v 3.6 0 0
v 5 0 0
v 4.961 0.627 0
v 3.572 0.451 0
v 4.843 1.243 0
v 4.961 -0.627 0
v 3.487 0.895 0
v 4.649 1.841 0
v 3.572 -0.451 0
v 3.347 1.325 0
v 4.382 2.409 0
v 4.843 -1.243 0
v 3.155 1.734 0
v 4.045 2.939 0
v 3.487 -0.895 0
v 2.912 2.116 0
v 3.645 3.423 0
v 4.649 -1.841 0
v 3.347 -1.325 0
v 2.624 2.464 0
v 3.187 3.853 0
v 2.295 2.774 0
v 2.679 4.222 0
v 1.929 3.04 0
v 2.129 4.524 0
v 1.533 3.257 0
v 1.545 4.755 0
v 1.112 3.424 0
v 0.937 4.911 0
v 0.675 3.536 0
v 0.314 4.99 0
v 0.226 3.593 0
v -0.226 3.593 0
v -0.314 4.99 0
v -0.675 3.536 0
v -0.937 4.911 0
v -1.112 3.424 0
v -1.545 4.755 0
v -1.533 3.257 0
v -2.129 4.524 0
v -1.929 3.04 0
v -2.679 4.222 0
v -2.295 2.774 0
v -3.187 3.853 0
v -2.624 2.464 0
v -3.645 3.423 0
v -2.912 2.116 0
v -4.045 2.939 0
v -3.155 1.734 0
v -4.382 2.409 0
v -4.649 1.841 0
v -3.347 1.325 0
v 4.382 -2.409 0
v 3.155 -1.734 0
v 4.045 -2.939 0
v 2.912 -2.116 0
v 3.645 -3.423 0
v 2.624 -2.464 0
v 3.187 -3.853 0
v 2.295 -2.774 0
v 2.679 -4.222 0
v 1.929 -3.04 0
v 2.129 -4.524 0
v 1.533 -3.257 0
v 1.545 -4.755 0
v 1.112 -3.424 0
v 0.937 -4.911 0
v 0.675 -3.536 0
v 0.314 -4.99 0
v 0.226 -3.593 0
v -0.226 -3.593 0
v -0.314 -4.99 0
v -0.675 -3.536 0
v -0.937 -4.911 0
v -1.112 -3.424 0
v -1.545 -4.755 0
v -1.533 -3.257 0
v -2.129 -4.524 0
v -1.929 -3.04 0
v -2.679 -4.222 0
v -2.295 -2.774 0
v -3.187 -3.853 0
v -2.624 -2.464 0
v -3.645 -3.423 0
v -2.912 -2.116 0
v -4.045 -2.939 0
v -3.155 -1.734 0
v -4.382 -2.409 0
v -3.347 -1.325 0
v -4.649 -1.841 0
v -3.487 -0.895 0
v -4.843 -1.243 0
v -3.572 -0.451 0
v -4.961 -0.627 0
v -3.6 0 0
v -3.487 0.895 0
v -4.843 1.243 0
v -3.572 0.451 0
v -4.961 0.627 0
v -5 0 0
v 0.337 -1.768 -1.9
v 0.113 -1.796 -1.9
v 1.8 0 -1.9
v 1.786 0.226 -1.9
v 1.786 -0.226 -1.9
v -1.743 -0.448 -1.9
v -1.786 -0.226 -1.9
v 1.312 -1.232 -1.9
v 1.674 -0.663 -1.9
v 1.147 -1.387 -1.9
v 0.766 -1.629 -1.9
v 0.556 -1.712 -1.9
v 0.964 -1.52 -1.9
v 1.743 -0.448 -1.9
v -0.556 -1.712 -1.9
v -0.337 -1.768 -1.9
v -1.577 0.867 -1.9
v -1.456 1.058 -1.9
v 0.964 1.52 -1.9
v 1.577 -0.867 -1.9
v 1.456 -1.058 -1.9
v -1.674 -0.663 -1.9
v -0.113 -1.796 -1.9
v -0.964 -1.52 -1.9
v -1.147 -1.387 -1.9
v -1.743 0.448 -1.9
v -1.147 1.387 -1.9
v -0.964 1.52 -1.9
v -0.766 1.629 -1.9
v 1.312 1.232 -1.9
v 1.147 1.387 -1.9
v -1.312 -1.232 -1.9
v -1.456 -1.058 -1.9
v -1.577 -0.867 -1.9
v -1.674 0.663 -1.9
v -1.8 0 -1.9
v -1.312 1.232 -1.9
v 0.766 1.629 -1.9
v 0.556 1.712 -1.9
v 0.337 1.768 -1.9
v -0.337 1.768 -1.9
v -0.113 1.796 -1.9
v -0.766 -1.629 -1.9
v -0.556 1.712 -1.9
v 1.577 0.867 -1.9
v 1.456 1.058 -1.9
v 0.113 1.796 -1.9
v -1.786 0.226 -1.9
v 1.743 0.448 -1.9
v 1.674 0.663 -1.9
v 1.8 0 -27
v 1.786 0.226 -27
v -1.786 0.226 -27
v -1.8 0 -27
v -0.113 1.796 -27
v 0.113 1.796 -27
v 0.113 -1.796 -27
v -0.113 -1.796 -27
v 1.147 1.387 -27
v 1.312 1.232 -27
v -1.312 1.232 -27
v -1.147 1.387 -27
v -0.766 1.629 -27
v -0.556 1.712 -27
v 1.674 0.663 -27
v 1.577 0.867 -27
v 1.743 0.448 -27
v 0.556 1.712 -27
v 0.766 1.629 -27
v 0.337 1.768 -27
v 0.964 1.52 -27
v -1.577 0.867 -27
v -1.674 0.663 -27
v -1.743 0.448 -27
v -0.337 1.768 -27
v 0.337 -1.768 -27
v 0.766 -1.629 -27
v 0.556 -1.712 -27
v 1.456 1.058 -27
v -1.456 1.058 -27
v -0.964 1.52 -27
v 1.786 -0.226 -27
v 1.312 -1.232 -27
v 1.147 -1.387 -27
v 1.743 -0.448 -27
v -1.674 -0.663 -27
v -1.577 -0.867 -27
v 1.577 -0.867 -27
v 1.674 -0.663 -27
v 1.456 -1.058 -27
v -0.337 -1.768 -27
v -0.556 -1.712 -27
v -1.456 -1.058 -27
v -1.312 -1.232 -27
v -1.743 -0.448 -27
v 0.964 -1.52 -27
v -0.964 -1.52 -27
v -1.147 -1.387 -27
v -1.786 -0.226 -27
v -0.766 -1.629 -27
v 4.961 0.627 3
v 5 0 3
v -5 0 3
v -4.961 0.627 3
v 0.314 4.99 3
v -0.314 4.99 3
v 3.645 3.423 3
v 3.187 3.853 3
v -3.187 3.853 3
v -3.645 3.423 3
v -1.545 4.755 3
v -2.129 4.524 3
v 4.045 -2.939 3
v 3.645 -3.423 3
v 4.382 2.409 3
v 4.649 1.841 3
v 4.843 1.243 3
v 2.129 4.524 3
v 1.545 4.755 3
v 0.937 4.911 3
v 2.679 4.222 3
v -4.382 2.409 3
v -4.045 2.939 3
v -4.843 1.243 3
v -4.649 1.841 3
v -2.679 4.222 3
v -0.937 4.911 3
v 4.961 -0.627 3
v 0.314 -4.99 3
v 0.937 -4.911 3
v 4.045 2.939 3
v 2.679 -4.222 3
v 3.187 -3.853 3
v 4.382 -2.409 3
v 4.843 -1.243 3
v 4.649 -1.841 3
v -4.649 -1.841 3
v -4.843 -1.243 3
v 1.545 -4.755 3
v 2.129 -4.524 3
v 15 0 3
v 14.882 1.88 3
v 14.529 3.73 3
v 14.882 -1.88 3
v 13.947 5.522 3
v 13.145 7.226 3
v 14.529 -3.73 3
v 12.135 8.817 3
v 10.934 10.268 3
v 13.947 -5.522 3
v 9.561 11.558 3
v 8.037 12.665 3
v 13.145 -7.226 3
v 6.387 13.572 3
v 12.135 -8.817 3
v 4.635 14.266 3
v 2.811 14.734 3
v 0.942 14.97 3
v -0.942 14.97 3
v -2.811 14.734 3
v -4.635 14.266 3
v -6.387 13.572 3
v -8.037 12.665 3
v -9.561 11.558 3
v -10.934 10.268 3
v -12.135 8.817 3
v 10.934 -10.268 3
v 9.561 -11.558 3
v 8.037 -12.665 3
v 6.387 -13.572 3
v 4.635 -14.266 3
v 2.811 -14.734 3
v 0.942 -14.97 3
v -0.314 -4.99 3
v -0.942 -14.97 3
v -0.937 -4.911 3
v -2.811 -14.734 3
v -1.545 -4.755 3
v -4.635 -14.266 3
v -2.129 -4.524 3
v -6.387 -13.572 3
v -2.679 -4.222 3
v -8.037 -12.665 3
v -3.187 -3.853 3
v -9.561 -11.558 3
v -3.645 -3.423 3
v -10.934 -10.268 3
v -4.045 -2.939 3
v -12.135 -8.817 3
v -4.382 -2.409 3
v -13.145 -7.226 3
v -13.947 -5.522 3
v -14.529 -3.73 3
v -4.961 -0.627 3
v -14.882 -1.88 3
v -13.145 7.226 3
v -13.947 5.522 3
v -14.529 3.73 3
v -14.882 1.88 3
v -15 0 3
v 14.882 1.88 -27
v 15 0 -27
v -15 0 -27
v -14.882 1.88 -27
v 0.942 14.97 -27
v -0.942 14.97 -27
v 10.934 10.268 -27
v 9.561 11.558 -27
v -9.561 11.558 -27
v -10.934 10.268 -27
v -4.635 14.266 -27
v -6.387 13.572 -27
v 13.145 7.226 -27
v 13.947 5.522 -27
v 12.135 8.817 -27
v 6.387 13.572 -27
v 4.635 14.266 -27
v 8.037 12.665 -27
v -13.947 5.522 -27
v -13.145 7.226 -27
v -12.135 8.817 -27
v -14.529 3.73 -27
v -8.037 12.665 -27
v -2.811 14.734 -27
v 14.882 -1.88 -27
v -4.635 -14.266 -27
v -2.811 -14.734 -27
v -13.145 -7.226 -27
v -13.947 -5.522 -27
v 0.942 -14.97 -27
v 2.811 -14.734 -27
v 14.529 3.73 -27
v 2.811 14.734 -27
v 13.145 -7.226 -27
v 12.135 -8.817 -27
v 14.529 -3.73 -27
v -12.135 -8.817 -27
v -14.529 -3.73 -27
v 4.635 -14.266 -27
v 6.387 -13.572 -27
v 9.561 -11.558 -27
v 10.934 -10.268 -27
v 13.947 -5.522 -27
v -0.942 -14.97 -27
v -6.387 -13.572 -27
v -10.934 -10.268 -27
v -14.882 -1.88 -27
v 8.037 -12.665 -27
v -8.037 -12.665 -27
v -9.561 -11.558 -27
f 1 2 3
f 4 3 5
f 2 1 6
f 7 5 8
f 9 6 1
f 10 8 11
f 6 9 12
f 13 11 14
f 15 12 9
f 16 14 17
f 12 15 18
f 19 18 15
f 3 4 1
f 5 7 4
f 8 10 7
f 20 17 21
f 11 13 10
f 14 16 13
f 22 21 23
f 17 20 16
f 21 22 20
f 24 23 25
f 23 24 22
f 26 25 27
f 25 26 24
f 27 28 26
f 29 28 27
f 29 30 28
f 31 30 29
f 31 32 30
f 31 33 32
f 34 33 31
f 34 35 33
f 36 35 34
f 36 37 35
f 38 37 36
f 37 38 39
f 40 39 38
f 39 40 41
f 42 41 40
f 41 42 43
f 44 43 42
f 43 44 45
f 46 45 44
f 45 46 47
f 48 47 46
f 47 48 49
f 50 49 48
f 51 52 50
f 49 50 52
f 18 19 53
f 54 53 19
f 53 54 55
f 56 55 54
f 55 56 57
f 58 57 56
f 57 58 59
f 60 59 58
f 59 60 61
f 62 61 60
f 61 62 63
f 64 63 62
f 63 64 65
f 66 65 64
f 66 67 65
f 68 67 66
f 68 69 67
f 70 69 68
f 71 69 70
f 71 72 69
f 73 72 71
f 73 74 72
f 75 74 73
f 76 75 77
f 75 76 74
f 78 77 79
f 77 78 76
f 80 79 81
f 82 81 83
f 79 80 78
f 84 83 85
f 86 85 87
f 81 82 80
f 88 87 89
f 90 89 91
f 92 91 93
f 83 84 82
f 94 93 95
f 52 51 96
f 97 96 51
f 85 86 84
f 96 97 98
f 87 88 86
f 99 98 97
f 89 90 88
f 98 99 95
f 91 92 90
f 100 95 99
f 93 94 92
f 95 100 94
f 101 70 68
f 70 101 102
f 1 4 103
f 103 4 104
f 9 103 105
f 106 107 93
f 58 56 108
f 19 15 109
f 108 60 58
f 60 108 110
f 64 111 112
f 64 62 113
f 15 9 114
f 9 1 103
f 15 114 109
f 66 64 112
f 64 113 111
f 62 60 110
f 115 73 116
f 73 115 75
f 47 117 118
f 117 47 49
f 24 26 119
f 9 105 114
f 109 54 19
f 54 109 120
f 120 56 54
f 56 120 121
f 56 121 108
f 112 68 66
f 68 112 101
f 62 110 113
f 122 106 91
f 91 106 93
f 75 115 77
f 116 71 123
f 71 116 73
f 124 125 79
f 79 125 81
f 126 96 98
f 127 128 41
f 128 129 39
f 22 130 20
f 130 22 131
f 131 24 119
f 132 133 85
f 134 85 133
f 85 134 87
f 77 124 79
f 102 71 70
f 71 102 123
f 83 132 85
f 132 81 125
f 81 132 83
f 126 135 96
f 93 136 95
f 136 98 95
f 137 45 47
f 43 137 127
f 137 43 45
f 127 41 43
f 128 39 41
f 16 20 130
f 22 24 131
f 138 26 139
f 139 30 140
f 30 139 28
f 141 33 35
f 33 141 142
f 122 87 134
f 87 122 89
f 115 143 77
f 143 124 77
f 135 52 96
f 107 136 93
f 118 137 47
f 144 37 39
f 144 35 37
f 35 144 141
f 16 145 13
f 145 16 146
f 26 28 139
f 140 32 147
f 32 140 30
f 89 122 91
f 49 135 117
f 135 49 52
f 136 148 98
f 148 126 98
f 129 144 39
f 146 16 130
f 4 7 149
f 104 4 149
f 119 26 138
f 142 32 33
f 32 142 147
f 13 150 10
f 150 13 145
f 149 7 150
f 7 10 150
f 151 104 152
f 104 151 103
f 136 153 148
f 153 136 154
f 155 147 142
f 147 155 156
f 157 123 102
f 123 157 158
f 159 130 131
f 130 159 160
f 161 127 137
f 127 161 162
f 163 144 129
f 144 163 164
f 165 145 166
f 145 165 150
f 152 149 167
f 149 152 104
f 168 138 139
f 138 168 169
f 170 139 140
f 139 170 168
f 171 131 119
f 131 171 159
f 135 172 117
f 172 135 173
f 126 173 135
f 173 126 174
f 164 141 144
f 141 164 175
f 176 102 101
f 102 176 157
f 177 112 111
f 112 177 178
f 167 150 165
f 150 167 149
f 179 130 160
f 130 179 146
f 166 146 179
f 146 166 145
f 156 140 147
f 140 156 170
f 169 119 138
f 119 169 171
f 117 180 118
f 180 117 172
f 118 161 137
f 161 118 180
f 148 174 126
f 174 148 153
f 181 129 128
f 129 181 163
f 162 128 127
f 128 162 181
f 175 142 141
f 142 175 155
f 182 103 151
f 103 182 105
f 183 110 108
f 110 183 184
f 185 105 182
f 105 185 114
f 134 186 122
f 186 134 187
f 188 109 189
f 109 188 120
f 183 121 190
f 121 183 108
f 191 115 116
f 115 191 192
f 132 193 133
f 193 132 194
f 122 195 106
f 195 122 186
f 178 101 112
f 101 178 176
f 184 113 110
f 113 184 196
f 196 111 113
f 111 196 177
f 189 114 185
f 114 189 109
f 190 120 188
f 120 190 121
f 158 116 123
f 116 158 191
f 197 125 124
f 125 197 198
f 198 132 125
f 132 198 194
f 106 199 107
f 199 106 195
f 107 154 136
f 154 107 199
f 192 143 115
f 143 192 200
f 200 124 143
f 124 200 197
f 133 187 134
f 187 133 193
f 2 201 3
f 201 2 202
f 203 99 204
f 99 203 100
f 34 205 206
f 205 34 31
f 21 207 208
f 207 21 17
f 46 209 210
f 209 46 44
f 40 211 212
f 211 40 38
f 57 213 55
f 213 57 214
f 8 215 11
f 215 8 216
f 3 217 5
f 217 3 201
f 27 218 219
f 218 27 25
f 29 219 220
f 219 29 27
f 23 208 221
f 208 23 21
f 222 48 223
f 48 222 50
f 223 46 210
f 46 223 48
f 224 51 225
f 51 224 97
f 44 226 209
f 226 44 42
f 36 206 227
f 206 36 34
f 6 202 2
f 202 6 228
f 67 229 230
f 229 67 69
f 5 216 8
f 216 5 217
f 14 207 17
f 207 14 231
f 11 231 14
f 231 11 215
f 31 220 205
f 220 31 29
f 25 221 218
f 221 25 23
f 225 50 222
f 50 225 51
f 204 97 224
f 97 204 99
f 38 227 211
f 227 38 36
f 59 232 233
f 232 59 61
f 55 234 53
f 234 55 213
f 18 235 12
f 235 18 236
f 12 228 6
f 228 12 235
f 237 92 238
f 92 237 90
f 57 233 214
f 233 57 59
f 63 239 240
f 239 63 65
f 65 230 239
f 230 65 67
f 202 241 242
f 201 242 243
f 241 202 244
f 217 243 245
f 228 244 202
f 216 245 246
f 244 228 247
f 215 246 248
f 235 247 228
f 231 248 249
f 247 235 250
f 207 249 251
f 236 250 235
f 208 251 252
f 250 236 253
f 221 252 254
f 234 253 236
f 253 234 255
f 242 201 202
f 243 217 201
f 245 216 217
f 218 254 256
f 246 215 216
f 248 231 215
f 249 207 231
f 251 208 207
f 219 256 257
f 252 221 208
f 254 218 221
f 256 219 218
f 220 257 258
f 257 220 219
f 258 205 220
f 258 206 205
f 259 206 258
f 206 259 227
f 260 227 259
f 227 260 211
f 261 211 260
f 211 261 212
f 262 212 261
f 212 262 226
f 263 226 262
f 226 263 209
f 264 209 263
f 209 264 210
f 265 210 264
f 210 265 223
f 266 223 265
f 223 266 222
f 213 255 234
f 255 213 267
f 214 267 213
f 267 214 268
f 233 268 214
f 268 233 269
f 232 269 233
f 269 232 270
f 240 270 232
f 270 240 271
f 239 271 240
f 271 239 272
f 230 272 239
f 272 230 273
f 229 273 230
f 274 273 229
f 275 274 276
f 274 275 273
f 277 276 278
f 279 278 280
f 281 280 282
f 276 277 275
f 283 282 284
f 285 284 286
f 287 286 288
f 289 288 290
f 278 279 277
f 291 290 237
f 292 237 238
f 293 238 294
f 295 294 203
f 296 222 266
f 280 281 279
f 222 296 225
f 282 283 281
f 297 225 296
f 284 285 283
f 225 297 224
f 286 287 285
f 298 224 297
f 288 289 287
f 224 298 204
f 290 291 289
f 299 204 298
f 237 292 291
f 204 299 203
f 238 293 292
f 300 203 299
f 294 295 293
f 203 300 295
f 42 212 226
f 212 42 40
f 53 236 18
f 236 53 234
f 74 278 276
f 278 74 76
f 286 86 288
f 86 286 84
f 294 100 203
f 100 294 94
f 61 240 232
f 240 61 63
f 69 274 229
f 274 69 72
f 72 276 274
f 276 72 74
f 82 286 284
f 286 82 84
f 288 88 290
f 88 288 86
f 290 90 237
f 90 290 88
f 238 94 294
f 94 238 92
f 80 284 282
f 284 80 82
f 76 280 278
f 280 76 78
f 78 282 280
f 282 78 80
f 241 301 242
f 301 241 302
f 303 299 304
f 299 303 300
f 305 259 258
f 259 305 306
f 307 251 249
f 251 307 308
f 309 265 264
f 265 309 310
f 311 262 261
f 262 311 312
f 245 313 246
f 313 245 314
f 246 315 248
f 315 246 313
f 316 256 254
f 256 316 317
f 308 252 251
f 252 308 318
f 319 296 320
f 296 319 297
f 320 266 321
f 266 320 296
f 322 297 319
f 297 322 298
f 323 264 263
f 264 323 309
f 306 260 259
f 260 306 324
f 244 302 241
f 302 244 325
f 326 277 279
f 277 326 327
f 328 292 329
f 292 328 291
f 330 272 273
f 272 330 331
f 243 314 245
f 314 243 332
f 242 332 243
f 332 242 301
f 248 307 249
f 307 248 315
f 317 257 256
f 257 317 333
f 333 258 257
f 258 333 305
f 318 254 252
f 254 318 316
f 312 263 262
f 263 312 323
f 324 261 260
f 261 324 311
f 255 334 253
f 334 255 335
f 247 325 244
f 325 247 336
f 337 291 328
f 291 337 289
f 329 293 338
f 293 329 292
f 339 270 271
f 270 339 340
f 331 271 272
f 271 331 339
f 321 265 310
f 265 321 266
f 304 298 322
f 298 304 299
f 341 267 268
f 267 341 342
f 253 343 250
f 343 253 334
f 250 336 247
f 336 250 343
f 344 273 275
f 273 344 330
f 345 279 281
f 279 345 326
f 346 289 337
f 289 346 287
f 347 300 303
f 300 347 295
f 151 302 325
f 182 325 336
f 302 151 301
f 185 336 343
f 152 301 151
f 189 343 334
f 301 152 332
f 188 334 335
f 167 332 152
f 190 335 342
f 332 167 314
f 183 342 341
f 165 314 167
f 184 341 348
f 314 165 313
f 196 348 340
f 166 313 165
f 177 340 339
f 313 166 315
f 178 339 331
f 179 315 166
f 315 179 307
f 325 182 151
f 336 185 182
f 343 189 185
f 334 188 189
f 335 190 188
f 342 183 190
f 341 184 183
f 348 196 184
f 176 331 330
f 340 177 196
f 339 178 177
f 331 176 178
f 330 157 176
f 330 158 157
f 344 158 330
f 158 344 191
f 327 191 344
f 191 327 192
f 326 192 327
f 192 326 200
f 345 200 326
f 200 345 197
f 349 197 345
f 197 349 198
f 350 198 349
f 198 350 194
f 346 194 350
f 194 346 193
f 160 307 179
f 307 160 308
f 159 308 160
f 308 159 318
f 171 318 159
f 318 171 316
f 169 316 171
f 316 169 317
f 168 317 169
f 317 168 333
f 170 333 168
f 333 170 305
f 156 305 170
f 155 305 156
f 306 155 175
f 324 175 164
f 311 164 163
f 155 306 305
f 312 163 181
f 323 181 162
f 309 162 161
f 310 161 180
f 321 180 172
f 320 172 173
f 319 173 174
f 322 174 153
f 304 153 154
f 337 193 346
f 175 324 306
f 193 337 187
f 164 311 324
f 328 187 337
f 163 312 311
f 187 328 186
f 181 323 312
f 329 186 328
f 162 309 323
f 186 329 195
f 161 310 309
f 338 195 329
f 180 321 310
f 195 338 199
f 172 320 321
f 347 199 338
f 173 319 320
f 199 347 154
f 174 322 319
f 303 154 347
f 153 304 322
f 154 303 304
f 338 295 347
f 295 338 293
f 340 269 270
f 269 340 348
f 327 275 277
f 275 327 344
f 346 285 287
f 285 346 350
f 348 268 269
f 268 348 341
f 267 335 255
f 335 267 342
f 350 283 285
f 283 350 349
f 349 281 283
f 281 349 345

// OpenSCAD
$fn = 50;

difference() {
	union() {
		translate(v = [0, 0, -27.0]) {
			cylinder(h = 30, r = 15.0);
		}
	}
	union() {
		translate(v = [0, 0, 0]) {
			rotate(a = [0, 0, 0]) {
				difference() {
					union() {
						translate(v = [0, 0, -30.0]) {
							cylinder(h = 30, r = 1.5);
						}
						translate(v = [0, 0, -1.9]) {
							cylinder(h = 1.9, r1 = 1.8, r2 = 3.6);
						}
						translate(v = [0, 0, -30.0]) {
							cylinder(h = 30, r = 1.8);
						}
						translate(v = [0, 0, -30.0]) {
							cylinder(h = 30, r = 1.5);
						}
					}
					union();
				}
			}
		}
		#cylinder(h = 3, r = 5.0);
	}
}
